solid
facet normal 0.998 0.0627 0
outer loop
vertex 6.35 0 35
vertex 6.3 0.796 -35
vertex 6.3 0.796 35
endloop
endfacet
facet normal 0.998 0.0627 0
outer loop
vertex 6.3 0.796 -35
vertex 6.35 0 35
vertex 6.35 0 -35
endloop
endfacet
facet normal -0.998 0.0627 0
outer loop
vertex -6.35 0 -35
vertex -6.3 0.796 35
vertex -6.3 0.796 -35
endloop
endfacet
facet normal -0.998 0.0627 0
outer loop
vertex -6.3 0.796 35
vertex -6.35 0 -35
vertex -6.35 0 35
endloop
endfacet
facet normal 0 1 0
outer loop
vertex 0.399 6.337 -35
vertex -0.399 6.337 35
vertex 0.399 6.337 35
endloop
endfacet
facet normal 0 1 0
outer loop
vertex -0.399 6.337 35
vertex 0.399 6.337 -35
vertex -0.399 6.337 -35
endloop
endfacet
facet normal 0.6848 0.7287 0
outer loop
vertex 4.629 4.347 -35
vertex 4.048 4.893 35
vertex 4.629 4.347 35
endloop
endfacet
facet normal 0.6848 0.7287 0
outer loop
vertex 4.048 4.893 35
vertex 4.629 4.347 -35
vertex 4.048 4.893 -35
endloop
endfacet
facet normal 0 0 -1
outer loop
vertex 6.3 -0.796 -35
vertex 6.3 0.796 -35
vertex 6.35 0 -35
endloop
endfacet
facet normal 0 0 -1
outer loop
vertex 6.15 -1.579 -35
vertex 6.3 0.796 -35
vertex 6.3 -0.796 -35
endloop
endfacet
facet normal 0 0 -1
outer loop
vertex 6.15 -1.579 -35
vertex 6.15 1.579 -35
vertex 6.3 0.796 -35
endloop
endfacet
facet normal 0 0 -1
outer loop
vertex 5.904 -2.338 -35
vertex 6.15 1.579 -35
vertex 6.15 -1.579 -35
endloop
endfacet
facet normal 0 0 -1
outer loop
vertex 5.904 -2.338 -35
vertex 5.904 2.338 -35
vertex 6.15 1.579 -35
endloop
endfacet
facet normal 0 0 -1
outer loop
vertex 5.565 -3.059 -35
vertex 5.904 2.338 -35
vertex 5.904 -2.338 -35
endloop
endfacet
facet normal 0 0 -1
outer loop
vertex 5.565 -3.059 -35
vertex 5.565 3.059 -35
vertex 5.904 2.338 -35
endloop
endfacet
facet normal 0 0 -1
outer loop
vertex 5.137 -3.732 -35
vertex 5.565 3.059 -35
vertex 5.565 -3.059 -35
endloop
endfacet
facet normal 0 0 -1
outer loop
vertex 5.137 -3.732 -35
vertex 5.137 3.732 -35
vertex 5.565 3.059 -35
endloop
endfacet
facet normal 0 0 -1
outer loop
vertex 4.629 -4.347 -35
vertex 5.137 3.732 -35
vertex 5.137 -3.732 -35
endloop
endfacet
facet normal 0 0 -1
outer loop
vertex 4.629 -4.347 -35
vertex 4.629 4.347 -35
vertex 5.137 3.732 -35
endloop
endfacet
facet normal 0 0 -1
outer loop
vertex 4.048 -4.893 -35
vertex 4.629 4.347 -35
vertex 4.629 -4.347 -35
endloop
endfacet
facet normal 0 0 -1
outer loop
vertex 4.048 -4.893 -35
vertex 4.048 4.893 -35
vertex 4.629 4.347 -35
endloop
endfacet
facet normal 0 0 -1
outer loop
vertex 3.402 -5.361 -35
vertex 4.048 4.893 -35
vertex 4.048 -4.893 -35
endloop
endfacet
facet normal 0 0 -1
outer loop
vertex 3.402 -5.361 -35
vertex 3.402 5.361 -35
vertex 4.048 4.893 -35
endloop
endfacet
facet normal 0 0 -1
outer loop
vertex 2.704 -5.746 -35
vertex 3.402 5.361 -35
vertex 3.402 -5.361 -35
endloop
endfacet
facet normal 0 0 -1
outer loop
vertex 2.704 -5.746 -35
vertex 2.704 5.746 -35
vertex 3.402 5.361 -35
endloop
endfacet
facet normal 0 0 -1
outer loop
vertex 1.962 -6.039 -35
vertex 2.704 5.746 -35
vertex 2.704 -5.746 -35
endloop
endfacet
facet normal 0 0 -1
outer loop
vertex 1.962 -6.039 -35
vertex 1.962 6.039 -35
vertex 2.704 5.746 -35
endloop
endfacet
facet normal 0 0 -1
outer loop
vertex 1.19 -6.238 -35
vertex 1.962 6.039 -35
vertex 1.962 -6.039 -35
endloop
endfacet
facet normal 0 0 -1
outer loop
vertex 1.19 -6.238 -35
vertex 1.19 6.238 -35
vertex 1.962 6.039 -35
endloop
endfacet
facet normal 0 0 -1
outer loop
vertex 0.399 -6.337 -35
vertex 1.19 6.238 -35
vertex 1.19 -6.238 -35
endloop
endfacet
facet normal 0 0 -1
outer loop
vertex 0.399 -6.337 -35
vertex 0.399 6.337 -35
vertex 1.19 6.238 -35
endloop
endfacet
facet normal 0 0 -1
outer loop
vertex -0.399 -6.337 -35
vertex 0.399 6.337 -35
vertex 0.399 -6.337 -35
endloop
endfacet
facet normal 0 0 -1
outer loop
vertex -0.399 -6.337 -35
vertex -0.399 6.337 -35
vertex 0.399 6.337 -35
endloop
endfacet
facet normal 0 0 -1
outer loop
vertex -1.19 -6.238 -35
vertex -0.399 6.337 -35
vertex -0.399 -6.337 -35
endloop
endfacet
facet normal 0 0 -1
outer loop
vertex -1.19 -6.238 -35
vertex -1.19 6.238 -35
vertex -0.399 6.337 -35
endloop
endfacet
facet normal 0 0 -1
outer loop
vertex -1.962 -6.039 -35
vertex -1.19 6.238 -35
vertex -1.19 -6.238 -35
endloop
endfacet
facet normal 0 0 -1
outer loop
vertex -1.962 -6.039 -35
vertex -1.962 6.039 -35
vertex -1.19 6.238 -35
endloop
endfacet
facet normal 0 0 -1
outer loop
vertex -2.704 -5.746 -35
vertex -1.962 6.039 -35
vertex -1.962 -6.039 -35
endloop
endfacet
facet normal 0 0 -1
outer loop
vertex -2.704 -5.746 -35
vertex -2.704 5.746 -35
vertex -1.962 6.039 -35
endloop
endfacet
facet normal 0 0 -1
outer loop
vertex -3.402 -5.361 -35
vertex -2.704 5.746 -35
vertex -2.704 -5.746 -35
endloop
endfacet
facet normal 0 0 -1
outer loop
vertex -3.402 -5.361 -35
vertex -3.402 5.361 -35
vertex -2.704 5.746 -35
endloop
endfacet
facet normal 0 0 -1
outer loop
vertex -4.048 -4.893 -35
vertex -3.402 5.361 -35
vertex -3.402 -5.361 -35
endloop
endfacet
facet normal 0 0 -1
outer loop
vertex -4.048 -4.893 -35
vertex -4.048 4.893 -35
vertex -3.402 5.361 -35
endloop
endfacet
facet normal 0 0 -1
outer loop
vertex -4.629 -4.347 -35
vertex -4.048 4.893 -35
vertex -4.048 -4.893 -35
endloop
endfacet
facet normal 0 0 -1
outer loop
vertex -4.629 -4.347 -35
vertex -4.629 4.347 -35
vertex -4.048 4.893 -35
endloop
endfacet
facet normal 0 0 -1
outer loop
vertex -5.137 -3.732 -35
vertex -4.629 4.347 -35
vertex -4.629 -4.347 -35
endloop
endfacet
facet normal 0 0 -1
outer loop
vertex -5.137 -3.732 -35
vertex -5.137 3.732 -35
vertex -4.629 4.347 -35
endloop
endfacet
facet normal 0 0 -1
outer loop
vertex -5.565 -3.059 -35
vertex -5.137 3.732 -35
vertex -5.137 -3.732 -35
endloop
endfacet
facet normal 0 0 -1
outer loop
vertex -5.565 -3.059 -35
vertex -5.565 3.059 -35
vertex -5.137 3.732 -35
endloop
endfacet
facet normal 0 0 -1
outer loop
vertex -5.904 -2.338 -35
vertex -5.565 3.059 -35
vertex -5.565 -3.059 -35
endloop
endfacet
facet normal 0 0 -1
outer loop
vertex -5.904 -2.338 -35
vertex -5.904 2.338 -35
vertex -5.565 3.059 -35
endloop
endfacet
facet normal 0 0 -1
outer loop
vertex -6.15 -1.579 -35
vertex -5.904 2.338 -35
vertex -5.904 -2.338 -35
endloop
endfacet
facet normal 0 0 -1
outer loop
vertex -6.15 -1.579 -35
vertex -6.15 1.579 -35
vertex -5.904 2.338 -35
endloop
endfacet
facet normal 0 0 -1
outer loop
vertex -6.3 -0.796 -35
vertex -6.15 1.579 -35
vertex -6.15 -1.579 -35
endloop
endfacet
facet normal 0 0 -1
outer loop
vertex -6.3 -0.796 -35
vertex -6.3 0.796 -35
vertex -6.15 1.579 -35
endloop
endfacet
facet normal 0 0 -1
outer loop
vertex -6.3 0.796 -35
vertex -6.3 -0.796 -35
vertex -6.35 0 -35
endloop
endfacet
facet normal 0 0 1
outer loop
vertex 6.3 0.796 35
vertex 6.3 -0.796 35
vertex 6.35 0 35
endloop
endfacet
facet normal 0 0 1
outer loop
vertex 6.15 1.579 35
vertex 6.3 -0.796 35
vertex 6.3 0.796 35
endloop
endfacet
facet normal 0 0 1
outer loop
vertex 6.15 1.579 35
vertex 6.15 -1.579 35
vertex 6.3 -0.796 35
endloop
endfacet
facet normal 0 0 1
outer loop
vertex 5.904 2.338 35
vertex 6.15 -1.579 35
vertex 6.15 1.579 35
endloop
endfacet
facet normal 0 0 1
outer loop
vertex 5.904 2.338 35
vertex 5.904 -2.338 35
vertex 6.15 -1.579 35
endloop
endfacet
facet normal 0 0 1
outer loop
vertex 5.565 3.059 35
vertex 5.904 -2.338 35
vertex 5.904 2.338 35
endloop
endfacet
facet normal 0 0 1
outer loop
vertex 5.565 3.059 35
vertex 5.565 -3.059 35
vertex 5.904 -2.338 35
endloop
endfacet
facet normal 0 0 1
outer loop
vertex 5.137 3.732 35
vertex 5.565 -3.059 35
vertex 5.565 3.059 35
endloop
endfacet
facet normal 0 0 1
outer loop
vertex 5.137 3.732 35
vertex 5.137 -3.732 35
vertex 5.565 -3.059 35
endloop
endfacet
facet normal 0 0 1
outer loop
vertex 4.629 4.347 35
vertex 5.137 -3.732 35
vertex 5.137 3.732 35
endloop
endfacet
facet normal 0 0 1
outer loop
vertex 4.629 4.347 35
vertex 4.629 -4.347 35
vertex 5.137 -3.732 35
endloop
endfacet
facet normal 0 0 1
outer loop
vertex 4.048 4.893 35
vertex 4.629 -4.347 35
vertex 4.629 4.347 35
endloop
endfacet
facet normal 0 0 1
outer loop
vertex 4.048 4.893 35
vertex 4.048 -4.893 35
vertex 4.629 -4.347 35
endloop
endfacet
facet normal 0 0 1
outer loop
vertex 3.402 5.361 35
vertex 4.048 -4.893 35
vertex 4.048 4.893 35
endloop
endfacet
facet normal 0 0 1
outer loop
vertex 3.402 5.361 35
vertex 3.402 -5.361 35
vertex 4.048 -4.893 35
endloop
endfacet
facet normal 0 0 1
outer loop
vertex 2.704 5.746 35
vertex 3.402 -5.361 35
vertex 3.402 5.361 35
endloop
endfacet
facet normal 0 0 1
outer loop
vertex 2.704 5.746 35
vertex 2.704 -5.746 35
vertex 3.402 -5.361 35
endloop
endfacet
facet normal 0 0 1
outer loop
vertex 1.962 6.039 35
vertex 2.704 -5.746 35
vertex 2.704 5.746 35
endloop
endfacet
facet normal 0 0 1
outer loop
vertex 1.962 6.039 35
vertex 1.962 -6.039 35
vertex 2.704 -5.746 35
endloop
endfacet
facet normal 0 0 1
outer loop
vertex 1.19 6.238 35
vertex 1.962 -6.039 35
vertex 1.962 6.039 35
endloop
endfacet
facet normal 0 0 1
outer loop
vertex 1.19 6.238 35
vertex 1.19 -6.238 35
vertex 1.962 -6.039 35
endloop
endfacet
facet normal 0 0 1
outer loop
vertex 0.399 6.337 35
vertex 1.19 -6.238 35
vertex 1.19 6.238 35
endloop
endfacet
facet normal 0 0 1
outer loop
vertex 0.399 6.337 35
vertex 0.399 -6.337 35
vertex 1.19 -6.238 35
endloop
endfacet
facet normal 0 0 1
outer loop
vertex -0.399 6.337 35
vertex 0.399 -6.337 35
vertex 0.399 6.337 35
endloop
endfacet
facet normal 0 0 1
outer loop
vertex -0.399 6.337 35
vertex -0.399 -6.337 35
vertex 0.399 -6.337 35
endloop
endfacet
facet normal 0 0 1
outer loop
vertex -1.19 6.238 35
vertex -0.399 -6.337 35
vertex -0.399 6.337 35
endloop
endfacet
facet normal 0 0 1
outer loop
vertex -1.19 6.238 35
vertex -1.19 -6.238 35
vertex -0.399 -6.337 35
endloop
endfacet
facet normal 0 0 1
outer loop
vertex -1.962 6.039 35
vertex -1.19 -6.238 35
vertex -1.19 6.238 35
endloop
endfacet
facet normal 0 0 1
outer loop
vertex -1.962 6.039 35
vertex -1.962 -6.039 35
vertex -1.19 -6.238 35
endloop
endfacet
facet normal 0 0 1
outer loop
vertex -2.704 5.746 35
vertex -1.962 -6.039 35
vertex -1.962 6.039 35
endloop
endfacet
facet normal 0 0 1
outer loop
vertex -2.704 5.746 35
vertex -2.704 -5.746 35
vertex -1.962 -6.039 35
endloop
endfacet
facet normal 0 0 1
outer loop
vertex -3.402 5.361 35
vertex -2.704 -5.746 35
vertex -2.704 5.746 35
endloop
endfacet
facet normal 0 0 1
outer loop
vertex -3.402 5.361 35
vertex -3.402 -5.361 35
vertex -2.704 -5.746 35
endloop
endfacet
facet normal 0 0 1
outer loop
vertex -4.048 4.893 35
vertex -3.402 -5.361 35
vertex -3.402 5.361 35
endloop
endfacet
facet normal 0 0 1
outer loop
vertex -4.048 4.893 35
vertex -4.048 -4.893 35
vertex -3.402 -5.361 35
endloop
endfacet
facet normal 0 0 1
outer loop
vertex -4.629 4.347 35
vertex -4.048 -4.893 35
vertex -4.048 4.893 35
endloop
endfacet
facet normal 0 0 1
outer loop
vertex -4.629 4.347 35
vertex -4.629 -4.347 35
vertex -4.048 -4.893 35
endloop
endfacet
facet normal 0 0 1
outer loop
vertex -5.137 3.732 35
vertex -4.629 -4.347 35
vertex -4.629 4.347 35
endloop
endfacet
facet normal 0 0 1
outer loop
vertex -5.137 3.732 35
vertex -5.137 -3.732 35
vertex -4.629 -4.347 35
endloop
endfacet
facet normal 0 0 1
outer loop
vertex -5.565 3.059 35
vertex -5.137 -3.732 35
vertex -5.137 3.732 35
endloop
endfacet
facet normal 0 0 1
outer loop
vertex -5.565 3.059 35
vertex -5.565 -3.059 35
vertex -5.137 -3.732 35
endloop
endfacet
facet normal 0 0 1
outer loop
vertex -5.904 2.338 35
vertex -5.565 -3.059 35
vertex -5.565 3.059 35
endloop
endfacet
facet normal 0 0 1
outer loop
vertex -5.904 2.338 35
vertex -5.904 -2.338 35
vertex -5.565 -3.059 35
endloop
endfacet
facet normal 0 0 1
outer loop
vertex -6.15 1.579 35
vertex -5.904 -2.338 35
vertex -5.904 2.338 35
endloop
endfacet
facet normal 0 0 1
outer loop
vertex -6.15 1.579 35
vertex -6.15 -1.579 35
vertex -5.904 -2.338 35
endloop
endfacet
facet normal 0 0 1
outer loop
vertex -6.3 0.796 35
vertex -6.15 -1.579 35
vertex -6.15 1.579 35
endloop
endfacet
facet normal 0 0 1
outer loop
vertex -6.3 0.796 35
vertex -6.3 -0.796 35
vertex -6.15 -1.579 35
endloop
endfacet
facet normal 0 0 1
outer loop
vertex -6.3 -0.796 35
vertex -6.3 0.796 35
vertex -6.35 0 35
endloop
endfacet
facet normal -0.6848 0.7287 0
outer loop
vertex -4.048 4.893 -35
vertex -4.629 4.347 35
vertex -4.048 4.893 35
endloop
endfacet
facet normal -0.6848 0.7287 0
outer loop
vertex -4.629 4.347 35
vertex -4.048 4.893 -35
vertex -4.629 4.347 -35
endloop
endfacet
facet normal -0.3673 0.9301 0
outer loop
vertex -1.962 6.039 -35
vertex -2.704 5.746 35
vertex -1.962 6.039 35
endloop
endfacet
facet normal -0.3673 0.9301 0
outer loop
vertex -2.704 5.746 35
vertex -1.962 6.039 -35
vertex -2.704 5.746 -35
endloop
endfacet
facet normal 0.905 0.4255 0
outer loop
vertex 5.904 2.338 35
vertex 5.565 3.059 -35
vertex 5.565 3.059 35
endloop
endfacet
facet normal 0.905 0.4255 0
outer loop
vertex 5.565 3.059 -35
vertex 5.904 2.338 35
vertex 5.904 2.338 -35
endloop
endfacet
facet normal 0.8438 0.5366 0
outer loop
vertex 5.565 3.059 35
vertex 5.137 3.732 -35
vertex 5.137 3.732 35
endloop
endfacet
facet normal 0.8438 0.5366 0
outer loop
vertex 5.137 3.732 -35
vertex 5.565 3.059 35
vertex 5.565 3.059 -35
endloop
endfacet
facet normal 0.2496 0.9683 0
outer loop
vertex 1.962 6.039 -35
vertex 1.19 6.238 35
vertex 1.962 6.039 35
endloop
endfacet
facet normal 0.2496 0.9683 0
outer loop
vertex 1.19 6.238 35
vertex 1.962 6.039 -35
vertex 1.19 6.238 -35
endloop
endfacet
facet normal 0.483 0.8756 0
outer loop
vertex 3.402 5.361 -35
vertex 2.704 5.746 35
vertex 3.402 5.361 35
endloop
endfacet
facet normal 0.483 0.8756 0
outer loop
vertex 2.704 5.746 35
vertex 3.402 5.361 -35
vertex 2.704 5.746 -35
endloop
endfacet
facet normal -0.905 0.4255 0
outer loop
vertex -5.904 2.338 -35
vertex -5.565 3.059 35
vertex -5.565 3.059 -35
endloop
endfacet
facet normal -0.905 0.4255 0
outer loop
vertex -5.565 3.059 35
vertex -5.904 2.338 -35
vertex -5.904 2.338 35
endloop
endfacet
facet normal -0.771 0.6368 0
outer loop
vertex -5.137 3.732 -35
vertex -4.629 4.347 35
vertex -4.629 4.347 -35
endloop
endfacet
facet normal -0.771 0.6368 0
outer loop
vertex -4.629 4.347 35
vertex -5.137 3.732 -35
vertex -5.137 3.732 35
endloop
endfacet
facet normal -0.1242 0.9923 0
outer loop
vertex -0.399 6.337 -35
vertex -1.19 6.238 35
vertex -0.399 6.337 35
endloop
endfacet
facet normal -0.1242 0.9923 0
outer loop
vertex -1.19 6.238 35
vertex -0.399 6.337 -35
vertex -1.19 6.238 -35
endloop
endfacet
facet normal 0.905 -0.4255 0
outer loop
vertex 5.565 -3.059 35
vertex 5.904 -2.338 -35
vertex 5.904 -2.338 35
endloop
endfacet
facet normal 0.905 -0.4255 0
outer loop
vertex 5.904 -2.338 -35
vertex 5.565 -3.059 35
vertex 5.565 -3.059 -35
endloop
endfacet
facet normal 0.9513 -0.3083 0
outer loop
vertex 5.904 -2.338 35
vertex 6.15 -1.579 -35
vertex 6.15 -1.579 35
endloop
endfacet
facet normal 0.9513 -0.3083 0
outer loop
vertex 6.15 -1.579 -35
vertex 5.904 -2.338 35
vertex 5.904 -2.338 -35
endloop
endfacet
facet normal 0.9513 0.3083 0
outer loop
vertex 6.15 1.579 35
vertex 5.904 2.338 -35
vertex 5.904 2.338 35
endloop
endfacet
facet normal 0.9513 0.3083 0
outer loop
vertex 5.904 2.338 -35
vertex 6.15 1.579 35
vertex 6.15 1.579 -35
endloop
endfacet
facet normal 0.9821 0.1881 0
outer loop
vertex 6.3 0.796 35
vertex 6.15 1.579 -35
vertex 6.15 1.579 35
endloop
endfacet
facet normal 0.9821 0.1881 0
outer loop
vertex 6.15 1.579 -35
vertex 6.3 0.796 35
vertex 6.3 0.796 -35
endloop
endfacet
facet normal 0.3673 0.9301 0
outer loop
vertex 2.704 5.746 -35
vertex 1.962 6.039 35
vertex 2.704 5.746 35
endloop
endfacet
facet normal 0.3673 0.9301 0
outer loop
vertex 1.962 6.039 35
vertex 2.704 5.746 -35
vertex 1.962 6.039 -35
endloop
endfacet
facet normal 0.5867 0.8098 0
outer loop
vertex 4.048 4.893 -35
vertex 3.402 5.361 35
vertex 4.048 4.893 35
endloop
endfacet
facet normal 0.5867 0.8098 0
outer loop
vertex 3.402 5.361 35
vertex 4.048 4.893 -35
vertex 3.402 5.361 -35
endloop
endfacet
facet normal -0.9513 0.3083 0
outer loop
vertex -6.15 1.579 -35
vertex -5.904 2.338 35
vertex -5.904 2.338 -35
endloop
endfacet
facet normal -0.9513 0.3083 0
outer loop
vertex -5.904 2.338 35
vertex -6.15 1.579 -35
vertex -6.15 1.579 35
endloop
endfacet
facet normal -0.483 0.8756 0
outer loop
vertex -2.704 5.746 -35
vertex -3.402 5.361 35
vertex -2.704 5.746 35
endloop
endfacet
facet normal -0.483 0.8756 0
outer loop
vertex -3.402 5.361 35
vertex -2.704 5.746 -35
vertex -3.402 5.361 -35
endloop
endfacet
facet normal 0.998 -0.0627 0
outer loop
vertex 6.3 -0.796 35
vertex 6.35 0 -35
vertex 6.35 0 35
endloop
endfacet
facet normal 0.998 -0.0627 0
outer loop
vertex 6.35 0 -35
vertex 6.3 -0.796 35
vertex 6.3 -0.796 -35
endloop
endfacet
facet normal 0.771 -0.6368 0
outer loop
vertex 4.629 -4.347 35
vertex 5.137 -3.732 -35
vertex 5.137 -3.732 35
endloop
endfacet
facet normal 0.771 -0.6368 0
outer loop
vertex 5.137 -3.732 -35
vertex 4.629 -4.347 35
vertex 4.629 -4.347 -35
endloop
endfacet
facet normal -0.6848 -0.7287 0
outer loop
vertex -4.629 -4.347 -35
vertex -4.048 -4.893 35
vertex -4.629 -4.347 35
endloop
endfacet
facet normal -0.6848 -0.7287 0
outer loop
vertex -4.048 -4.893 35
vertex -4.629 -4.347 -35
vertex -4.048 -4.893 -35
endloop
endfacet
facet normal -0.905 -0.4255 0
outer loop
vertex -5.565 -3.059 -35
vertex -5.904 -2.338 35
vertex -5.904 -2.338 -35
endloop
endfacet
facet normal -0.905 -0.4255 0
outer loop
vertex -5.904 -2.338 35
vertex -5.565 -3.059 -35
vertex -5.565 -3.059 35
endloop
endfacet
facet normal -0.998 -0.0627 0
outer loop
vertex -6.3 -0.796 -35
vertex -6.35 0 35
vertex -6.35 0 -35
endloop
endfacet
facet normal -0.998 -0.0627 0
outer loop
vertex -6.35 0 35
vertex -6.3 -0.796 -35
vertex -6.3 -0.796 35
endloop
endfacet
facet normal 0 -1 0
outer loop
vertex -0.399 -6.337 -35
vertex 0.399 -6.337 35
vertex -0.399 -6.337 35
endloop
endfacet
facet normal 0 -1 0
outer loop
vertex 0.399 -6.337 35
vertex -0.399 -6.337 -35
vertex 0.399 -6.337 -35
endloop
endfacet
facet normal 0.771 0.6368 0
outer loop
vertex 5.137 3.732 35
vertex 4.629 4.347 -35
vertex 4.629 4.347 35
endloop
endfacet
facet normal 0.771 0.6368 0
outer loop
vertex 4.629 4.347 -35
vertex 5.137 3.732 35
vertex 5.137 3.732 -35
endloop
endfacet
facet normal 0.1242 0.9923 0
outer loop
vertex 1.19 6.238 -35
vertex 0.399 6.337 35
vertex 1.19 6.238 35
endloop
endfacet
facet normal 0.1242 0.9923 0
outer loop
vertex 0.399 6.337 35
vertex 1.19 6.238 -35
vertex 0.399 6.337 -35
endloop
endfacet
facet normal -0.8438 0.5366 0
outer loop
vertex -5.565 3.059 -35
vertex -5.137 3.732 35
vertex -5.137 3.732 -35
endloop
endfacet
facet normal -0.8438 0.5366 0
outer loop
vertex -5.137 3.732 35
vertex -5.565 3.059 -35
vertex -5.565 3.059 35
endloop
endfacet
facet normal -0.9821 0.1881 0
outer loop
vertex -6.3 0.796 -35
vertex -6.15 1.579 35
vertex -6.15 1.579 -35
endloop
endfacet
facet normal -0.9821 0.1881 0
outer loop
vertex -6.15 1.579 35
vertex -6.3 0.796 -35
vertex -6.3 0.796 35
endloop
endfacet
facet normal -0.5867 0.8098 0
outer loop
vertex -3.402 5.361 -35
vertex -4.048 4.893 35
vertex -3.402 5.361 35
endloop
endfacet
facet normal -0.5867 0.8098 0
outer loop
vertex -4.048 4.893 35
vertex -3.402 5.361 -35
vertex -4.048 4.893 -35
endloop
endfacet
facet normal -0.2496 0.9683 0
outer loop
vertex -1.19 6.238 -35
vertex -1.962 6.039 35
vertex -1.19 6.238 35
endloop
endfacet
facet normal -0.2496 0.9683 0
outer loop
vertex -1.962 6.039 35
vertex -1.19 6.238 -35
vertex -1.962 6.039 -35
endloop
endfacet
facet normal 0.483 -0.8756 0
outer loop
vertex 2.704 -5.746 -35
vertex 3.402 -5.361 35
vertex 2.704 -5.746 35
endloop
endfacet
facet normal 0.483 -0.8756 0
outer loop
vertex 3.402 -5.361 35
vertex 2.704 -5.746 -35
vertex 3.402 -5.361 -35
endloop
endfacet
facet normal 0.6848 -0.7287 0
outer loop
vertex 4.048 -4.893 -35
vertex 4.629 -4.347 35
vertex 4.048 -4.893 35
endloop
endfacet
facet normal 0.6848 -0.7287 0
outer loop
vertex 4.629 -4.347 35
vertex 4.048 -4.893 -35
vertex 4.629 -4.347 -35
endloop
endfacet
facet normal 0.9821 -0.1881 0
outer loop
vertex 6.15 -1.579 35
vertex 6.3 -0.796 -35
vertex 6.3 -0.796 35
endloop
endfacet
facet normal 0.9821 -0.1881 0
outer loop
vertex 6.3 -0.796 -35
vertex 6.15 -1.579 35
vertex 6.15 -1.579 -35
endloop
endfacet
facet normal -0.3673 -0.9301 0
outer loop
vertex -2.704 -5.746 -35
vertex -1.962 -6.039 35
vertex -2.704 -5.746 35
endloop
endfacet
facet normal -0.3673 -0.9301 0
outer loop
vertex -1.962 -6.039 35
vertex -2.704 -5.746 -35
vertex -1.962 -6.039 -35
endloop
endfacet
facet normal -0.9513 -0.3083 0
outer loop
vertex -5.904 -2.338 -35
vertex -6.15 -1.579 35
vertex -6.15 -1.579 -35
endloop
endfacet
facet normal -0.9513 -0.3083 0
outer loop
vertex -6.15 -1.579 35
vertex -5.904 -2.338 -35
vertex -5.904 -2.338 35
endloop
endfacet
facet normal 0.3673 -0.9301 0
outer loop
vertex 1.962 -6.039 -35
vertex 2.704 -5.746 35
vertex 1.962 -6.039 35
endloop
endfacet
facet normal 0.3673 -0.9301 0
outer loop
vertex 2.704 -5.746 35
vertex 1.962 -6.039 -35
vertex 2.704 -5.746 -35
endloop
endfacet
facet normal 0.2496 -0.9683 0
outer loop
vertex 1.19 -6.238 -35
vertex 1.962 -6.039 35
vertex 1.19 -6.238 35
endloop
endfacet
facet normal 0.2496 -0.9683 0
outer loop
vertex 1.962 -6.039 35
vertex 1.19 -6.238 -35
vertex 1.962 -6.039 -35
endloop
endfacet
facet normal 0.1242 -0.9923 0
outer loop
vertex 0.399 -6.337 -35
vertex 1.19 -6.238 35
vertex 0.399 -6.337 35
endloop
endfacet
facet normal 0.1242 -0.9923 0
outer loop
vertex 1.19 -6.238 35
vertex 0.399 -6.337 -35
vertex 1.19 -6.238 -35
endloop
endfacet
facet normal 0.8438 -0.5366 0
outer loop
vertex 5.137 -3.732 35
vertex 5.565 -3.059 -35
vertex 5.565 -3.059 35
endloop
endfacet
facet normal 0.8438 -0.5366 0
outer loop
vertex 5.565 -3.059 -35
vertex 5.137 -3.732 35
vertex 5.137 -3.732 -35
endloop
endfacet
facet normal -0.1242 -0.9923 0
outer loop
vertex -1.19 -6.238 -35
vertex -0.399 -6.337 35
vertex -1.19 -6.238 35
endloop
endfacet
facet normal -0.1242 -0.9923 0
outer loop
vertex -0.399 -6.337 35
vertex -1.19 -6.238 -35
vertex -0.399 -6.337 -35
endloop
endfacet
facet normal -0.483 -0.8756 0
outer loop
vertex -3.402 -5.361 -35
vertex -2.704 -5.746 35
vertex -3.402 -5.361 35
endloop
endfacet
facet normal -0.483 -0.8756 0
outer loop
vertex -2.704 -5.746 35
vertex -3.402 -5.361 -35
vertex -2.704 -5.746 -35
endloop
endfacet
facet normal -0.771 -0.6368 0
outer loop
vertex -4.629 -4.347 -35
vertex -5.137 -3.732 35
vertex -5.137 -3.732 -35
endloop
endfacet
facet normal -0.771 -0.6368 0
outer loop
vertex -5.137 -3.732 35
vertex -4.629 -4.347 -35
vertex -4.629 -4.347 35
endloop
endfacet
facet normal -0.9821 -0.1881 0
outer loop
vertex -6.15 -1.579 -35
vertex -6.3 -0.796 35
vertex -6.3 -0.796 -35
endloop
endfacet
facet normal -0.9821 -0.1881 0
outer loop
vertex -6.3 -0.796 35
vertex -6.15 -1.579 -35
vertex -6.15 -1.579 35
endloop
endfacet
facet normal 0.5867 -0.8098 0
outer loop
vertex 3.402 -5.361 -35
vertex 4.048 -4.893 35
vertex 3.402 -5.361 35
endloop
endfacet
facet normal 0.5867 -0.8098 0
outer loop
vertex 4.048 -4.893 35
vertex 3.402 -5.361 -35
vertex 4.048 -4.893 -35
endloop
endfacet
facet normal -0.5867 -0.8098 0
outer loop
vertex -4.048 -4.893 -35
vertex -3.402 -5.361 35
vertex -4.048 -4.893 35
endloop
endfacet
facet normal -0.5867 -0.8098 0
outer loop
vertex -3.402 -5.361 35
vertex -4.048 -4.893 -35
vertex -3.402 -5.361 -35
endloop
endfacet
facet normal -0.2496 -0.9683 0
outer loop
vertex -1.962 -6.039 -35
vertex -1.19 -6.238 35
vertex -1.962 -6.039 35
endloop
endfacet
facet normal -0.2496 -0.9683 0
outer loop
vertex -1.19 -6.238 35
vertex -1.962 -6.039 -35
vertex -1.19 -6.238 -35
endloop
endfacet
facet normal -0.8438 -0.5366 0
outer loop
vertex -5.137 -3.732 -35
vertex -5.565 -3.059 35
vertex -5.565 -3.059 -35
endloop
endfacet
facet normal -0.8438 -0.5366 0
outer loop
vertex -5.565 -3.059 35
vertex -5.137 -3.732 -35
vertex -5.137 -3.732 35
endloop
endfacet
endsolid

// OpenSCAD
$fn = 50;


difference() {
	union() {
		translate(v = [0, 0, -35.0000000000]) {
			cylinder(h = 70, r = 6.3500000000);
		}
	}
	union() {
		translate(v = [0, 0, -100.0000000000]) {
			cylinder(h = 200, r = 0);
		}
	}
}
